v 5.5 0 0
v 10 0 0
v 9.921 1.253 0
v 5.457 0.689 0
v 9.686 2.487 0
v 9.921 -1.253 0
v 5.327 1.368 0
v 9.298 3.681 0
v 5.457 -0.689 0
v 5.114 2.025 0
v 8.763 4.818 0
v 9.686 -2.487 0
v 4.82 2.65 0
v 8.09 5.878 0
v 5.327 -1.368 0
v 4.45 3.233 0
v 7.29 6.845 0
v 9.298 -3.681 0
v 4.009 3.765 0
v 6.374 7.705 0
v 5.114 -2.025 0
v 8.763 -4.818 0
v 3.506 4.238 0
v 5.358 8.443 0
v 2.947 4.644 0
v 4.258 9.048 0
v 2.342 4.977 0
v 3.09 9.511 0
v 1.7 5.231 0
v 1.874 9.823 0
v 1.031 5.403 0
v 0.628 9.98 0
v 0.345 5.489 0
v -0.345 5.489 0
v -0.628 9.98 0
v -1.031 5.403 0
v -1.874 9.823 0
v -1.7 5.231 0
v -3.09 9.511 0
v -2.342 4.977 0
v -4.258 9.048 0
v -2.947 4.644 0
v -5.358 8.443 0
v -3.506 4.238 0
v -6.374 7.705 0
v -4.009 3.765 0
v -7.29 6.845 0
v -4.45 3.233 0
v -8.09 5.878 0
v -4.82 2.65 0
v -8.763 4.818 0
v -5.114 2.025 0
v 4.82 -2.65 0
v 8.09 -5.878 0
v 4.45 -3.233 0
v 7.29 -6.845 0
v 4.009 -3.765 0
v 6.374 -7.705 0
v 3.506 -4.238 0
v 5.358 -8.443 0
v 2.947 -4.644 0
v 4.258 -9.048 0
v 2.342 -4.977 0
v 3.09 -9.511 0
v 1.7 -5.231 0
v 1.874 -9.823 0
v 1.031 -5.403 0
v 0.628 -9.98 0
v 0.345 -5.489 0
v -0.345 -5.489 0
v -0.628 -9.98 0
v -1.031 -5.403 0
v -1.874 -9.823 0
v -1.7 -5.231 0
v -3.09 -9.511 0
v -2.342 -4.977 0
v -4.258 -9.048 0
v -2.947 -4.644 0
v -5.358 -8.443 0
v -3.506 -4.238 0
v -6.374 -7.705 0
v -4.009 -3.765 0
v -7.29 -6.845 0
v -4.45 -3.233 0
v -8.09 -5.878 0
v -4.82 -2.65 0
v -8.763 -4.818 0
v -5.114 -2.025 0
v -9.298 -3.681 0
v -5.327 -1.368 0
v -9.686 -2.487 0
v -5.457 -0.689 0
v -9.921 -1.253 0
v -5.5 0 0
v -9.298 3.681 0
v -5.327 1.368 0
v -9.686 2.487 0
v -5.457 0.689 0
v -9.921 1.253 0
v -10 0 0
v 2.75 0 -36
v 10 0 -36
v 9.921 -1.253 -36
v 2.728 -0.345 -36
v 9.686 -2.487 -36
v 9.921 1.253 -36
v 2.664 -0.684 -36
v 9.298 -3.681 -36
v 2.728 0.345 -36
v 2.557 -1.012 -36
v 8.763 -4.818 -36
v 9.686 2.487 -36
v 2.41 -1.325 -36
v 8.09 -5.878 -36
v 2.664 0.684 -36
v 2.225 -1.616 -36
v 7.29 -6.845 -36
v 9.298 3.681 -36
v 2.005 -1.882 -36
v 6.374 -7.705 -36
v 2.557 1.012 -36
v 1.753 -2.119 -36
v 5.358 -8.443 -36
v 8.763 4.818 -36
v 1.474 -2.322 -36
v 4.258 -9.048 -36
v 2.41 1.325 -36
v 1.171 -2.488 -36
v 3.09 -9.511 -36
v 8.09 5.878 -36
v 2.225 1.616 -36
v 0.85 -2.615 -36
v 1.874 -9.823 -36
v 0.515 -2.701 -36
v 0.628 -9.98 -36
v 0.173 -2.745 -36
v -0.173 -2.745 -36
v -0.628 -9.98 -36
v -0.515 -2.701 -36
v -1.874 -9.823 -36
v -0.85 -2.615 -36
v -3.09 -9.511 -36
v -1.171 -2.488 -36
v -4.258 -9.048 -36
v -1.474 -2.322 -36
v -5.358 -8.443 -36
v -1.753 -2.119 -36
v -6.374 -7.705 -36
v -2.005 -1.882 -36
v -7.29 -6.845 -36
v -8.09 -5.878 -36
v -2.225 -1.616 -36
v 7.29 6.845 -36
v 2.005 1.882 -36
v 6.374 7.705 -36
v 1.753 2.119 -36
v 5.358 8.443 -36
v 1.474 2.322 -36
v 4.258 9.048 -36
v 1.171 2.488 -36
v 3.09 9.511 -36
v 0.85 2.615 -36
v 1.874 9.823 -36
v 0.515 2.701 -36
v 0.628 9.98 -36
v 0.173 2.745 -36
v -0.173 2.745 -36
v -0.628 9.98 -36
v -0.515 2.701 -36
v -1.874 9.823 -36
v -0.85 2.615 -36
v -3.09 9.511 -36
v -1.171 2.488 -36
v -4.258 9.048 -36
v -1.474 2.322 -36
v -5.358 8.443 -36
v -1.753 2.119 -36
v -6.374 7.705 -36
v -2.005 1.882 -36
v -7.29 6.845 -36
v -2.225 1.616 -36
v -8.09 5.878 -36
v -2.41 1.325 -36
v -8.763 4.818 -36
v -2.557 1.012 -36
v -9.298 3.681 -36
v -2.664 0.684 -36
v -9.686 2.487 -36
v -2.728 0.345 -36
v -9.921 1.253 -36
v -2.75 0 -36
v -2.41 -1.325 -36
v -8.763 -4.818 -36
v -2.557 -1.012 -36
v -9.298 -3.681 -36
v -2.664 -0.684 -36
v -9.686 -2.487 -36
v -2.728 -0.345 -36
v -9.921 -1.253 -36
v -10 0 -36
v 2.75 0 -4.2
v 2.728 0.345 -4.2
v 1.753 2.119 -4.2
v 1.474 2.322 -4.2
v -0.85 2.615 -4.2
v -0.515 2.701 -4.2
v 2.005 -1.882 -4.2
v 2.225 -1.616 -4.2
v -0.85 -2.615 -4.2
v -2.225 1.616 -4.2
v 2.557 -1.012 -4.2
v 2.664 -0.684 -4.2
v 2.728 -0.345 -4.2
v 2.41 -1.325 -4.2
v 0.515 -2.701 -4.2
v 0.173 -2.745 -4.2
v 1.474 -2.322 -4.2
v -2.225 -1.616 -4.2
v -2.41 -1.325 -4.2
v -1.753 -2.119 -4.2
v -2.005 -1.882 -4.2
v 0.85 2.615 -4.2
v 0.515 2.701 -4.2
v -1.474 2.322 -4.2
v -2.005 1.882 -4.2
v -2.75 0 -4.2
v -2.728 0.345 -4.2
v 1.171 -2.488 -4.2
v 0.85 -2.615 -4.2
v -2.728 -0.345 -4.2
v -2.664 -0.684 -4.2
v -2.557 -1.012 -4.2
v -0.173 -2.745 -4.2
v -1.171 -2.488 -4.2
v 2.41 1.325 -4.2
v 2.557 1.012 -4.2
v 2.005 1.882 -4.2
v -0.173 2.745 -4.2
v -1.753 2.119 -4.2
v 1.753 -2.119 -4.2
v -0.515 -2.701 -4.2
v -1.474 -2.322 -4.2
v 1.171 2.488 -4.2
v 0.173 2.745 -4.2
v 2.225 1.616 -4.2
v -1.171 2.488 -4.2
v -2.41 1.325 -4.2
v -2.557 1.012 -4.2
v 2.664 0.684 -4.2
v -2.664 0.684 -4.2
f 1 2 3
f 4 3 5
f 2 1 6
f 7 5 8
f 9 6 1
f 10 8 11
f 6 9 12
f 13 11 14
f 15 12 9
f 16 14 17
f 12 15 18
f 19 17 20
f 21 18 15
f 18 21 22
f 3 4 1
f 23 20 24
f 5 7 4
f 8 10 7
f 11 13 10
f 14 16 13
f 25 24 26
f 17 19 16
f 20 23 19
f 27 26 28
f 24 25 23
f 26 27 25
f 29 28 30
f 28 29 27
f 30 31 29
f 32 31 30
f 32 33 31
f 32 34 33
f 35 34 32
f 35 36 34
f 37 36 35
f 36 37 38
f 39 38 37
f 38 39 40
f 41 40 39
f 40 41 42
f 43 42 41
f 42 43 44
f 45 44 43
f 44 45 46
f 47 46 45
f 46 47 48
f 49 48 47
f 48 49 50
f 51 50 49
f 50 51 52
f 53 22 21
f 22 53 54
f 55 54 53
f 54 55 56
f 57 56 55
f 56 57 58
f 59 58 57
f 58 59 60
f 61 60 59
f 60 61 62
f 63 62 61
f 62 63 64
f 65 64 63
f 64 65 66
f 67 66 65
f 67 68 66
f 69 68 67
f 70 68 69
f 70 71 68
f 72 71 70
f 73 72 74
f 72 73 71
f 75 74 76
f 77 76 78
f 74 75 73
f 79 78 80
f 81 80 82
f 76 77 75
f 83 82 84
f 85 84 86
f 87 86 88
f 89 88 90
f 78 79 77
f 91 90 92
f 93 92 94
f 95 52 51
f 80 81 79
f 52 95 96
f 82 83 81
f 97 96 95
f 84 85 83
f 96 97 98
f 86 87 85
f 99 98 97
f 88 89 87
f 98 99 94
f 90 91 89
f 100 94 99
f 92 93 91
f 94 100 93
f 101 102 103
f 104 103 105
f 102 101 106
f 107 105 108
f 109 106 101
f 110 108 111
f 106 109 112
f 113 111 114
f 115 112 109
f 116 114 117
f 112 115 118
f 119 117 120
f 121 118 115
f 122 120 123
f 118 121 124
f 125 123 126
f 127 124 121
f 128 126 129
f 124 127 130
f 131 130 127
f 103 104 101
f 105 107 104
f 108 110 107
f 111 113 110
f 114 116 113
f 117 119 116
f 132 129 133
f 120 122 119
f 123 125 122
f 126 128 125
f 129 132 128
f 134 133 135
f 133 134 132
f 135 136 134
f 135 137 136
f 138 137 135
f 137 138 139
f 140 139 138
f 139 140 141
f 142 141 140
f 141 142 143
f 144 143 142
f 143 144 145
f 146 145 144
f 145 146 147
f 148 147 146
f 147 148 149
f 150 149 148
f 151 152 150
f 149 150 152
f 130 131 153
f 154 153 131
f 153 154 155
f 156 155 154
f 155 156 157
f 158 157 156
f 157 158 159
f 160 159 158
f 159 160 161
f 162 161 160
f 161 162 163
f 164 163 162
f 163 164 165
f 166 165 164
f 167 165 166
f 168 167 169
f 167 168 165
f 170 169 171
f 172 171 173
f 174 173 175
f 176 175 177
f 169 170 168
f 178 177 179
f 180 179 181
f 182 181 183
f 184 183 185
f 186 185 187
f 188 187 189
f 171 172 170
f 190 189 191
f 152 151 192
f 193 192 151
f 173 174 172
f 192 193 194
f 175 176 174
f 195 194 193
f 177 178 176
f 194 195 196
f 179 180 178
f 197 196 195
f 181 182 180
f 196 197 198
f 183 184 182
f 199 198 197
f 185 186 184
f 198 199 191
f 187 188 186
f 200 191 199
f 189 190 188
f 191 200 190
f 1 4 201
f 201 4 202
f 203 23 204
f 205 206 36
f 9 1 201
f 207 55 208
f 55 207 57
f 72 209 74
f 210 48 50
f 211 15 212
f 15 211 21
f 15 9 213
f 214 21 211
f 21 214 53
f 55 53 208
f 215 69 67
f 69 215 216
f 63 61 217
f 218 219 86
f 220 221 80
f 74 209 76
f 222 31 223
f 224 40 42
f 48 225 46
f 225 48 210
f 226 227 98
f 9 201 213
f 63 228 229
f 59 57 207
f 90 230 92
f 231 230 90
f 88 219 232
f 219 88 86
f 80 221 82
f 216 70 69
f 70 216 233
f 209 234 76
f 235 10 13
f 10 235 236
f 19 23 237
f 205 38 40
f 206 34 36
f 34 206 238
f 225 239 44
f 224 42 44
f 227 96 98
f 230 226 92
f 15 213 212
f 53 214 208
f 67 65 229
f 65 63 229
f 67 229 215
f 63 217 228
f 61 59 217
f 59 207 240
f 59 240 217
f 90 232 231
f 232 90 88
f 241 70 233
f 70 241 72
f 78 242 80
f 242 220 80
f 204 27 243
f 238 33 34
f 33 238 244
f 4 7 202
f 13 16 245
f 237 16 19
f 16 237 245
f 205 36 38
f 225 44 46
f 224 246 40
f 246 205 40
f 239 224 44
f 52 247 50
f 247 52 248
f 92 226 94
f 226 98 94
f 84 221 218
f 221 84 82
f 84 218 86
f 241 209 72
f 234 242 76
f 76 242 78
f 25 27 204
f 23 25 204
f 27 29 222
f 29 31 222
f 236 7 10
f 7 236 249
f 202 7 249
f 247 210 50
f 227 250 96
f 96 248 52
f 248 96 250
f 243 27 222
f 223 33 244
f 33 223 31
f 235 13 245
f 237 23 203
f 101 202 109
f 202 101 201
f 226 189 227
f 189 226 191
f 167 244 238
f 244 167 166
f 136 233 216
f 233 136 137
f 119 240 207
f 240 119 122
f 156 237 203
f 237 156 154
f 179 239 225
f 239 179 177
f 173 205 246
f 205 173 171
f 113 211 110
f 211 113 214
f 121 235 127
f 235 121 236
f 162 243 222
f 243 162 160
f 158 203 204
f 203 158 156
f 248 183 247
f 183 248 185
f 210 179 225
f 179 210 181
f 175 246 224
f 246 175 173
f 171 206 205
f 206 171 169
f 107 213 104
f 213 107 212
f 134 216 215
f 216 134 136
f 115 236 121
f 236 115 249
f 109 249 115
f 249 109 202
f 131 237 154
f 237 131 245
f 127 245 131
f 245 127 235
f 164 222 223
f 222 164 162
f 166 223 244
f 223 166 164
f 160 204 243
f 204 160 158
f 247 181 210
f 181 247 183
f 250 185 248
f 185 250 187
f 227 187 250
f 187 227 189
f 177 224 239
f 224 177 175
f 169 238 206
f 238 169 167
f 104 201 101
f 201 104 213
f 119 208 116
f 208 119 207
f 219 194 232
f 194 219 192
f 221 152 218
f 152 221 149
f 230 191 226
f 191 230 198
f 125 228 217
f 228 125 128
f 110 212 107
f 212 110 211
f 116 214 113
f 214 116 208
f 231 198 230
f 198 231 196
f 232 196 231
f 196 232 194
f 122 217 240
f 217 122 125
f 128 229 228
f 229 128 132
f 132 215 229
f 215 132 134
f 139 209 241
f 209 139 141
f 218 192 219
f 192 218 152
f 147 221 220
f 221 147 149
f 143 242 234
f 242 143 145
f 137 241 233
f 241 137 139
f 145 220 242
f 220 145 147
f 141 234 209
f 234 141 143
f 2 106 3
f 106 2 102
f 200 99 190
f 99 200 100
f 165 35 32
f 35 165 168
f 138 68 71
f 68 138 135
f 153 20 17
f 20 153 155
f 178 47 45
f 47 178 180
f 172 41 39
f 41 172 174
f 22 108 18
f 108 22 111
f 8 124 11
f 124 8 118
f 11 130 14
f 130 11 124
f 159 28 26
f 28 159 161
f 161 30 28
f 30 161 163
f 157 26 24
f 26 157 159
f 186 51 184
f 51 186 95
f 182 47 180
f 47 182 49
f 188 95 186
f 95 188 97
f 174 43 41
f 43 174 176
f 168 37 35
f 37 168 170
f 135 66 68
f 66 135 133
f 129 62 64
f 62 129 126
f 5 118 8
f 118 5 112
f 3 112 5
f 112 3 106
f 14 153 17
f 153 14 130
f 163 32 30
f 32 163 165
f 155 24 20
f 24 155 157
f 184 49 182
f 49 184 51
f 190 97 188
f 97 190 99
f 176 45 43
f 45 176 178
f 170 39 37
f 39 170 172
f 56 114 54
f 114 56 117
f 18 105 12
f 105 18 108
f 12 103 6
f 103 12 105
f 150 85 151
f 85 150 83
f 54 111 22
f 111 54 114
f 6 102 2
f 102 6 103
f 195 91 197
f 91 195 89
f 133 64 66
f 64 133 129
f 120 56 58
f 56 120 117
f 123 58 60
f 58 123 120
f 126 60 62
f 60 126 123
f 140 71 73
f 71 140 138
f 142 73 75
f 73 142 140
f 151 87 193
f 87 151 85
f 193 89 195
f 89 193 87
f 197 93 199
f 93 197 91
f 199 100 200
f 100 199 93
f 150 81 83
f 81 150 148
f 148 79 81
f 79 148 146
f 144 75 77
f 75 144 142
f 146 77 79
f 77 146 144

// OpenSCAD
$fn = 50;


difference() {
	union() {
		translate(v = [0, 0, -36.0000000000]) {
			cylinder(h = 36, r = 10.0000000000);
		}
		cylinder(h = 0, r = 19.0000000000);
	}
	union() {
		translate(v = [0, 0, 0]) {
			rotate(a = [0, 0, 0]) {
				difference() {
					union() {
						#translate(v = [0, 0, -36.0000000000]) {
							cylinder(h = 36, r = 2.2500000000);
						}
						#translate(v = [0, 0, -4.2000000000]) {
							cylinder(h = 4.2000000000, r1 = 2.7500000000, r2 = 5.5000000000);
						}
						#translate(v = [0, 0, -36.0000000000]) {
							cylinder(h = 36, r = 2.7500000000);
						}
						#translate(v = [0, 0, -36.0000000000]) {
							cylinder(h = 36, r = 2.2500000000);
						}
					}
					union();
				}
			}
		}
	}
}
